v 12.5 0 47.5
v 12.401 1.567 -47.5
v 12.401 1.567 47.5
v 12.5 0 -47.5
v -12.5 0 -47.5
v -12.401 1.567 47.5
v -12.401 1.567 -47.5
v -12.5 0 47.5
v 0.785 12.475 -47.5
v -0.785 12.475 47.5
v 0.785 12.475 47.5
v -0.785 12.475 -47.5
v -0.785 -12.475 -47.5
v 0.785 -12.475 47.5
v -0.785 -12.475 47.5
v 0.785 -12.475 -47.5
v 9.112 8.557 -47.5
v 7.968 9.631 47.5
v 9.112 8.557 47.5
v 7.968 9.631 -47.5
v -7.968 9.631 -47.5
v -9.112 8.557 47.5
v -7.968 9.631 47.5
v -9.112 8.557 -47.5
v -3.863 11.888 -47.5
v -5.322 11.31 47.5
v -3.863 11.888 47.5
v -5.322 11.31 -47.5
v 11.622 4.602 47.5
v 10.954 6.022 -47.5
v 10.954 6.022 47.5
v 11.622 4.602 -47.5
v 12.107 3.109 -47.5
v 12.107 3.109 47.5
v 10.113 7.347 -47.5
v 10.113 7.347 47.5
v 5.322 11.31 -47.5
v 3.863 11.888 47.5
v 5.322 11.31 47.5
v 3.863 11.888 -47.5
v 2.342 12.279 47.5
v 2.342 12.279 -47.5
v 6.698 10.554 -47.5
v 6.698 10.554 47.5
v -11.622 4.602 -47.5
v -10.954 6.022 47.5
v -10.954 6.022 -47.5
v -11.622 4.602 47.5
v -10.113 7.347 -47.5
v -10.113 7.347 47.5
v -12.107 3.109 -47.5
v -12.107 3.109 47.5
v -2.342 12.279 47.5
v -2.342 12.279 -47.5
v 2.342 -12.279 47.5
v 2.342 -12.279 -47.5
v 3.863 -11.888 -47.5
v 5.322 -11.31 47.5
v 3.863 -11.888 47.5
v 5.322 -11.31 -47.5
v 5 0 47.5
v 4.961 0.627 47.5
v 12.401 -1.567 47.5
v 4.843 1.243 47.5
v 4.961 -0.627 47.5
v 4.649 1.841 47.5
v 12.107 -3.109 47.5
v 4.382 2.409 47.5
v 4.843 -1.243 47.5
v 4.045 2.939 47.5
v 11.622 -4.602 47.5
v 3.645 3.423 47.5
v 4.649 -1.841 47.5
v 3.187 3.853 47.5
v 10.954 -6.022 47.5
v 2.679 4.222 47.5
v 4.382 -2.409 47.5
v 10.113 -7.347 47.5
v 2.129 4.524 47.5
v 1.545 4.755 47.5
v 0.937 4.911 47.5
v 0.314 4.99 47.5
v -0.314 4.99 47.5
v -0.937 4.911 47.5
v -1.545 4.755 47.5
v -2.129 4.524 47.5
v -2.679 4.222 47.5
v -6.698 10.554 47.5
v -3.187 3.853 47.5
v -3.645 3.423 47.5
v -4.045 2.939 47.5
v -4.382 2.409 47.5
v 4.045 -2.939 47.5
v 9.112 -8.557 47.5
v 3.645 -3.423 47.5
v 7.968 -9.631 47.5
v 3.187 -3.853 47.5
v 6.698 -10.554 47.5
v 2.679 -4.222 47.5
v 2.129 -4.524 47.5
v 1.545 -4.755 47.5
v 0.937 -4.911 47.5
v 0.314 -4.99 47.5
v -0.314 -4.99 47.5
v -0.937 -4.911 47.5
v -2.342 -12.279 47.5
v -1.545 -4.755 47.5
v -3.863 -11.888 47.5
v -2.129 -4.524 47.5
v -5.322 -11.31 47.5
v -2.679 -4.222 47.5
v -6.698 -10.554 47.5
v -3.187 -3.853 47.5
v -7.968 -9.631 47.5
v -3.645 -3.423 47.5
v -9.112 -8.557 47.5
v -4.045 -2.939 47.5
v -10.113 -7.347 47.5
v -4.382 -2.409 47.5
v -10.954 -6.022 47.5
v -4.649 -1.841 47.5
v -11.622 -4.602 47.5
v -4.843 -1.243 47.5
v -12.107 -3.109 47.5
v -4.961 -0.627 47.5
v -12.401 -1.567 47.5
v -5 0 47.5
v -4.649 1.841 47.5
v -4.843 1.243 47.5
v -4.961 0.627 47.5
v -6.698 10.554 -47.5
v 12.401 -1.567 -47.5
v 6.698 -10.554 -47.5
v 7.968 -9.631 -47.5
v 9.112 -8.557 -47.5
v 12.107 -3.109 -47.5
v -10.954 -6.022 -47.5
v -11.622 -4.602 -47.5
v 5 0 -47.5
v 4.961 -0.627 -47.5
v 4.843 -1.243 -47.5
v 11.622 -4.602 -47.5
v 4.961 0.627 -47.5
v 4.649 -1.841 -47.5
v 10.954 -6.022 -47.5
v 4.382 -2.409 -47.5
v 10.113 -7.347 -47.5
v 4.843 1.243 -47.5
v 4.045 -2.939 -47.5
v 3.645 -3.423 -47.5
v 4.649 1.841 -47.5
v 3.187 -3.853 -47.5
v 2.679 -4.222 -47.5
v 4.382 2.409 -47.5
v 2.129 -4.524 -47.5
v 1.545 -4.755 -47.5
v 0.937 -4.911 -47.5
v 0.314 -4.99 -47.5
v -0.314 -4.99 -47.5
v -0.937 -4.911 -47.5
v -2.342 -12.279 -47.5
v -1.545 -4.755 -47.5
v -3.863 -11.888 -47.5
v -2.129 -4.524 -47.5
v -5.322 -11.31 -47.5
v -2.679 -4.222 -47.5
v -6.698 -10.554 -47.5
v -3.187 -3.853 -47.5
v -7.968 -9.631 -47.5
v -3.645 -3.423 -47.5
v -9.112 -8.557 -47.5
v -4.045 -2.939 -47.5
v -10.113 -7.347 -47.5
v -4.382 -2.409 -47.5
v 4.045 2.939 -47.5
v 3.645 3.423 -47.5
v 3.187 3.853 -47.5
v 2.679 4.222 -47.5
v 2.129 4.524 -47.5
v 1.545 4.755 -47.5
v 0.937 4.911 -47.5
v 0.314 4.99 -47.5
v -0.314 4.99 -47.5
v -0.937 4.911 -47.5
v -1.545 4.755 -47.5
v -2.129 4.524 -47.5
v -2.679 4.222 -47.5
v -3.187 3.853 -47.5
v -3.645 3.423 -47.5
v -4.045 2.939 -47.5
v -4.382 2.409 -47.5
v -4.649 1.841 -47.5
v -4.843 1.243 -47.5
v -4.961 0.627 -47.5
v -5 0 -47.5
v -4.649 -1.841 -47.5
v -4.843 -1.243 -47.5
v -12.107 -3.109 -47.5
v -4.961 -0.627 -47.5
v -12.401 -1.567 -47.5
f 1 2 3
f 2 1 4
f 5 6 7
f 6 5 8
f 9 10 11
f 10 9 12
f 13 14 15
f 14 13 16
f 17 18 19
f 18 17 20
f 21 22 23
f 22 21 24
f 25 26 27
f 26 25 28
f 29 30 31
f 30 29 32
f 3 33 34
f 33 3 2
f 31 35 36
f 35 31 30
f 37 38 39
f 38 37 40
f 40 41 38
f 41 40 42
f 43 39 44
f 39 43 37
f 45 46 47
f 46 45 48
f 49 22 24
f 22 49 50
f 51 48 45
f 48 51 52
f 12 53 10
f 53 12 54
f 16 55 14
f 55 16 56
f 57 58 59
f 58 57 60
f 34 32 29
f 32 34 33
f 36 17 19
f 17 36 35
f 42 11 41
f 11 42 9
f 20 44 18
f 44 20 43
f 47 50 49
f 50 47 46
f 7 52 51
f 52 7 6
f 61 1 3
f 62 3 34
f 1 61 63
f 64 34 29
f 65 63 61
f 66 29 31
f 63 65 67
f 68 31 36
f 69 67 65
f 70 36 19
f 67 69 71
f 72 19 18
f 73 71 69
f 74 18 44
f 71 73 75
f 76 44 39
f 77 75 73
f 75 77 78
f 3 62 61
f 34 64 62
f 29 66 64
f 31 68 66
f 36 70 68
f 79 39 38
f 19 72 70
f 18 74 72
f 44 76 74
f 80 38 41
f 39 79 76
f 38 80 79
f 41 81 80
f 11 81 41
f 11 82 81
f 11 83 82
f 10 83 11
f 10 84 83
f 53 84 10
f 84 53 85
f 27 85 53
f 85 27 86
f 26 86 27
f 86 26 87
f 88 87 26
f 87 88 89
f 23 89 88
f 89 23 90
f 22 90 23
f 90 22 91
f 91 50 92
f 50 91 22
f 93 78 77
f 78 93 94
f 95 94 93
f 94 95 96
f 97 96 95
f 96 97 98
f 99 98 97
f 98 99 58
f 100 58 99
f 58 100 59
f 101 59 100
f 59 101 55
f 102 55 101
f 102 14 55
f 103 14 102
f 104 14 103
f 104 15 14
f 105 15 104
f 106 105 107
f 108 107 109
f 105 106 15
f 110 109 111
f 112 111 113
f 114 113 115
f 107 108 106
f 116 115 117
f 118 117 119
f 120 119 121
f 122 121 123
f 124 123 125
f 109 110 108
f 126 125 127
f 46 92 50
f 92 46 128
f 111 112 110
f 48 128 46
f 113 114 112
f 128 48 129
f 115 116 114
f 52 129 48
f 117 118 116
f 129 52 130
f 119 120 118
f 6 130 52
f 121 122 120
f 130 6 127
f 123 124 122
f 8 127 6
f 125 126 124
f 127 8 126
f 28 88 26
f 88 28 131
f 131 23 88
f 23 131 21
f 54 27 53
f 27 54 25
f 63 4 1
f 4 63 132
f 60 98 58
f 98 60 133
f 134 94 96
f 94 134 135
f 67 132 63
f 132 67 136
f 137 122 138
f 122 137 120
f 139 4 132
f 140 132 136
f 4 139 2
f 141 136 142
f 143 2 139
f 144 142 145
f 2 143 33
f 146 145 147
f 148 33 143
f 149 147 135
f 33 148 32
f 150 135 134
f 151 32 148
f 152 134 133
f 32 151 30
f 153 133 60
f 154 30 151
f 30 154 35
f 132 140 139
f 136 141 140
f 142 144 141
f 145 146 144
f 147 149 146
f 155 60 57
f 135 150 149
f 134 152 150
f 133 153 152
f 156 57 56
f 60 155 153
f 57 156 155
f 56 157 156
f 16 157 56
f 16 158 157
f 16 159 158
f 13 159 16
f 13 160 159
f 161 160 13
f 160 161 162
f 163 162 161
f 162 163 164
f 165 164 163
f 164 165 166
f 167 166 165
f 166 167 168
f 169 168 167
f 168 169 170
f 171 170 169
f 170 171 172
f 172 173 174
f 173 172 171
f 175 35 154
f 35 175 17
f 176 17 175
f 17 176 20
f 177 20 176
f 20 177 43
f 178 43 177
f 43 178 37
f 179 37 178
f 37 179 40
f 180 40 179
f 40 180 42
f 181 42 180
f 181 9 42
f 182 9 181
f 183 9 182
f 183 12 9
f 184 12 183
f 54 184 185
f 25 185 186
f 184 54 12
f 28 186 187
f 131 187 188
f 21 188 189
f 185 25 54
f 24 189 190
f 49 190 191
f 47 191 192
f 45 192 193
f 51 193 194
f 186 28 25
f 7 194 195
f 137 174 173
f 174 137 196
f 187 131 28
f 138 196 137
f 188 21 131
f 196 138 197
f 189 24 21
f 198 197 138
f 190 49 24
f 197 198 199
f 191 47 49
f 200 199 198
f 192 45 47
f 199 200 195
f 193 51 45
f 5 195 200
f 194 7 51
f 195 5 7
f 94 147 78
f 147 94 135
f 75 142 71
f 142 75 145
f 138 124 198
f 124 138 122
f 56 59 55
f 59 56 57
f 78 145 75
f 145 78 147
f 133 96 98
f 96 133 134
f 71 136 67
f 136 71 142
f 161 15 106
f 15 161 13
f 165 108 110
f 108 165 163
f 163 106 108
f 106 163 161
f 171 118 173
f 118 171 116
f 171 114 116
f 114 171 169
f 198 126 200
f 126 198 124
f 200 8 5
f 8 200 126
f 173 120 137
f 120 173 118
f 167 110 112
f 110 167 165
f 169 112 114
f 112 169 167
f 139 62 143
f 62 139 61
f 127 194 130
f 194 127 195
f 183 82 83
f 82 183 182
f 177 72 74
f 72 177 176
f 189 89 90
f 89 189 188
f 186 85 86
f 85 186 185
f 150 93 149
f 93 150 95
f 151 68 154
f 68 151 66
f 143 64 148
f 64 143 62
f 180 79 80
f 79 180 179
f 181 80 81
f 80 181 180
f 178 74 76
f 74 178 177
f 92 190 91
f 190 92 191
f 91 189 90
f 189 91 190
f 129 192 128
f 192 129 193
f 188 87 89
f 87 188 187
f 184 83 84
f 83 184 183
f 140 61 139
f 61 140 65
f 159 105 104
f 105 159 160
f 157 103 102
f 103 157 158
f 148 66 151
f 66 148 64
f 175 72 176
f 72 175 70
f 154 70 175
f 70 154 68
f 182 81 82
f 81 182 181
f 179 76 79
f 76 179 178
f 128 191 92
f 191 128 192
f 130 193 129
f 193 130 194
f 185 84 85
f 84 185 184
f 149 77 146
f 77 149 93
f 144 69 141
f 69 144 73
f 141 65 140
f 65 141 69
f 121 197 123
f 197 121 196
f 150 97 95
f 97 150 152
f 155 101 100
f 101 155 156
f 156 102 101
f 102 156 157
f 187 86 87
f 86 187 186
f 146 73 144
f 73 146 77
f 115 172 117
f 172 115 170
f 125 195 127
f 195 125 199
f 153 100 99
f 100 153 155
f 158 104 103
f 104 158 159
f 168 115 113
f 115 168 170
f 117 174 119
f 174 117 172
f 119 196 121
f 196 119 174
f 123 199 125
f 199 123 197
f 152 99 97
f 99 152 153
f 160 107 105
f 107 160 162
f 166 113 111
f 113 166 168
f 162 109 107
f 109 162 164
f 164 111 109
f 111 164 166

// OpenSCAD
$fn = 50;


difference() {
	union() {
		translate(v = [0, 0, -47.5000000000]) {
			cylinder(h = 95, r = 12.5000000000);
		}
	}
	union() {
		translate(v = [0, 0, -100.0000000000]) {
			cylinder(h = 200, r = 5);
		}
	}
}
